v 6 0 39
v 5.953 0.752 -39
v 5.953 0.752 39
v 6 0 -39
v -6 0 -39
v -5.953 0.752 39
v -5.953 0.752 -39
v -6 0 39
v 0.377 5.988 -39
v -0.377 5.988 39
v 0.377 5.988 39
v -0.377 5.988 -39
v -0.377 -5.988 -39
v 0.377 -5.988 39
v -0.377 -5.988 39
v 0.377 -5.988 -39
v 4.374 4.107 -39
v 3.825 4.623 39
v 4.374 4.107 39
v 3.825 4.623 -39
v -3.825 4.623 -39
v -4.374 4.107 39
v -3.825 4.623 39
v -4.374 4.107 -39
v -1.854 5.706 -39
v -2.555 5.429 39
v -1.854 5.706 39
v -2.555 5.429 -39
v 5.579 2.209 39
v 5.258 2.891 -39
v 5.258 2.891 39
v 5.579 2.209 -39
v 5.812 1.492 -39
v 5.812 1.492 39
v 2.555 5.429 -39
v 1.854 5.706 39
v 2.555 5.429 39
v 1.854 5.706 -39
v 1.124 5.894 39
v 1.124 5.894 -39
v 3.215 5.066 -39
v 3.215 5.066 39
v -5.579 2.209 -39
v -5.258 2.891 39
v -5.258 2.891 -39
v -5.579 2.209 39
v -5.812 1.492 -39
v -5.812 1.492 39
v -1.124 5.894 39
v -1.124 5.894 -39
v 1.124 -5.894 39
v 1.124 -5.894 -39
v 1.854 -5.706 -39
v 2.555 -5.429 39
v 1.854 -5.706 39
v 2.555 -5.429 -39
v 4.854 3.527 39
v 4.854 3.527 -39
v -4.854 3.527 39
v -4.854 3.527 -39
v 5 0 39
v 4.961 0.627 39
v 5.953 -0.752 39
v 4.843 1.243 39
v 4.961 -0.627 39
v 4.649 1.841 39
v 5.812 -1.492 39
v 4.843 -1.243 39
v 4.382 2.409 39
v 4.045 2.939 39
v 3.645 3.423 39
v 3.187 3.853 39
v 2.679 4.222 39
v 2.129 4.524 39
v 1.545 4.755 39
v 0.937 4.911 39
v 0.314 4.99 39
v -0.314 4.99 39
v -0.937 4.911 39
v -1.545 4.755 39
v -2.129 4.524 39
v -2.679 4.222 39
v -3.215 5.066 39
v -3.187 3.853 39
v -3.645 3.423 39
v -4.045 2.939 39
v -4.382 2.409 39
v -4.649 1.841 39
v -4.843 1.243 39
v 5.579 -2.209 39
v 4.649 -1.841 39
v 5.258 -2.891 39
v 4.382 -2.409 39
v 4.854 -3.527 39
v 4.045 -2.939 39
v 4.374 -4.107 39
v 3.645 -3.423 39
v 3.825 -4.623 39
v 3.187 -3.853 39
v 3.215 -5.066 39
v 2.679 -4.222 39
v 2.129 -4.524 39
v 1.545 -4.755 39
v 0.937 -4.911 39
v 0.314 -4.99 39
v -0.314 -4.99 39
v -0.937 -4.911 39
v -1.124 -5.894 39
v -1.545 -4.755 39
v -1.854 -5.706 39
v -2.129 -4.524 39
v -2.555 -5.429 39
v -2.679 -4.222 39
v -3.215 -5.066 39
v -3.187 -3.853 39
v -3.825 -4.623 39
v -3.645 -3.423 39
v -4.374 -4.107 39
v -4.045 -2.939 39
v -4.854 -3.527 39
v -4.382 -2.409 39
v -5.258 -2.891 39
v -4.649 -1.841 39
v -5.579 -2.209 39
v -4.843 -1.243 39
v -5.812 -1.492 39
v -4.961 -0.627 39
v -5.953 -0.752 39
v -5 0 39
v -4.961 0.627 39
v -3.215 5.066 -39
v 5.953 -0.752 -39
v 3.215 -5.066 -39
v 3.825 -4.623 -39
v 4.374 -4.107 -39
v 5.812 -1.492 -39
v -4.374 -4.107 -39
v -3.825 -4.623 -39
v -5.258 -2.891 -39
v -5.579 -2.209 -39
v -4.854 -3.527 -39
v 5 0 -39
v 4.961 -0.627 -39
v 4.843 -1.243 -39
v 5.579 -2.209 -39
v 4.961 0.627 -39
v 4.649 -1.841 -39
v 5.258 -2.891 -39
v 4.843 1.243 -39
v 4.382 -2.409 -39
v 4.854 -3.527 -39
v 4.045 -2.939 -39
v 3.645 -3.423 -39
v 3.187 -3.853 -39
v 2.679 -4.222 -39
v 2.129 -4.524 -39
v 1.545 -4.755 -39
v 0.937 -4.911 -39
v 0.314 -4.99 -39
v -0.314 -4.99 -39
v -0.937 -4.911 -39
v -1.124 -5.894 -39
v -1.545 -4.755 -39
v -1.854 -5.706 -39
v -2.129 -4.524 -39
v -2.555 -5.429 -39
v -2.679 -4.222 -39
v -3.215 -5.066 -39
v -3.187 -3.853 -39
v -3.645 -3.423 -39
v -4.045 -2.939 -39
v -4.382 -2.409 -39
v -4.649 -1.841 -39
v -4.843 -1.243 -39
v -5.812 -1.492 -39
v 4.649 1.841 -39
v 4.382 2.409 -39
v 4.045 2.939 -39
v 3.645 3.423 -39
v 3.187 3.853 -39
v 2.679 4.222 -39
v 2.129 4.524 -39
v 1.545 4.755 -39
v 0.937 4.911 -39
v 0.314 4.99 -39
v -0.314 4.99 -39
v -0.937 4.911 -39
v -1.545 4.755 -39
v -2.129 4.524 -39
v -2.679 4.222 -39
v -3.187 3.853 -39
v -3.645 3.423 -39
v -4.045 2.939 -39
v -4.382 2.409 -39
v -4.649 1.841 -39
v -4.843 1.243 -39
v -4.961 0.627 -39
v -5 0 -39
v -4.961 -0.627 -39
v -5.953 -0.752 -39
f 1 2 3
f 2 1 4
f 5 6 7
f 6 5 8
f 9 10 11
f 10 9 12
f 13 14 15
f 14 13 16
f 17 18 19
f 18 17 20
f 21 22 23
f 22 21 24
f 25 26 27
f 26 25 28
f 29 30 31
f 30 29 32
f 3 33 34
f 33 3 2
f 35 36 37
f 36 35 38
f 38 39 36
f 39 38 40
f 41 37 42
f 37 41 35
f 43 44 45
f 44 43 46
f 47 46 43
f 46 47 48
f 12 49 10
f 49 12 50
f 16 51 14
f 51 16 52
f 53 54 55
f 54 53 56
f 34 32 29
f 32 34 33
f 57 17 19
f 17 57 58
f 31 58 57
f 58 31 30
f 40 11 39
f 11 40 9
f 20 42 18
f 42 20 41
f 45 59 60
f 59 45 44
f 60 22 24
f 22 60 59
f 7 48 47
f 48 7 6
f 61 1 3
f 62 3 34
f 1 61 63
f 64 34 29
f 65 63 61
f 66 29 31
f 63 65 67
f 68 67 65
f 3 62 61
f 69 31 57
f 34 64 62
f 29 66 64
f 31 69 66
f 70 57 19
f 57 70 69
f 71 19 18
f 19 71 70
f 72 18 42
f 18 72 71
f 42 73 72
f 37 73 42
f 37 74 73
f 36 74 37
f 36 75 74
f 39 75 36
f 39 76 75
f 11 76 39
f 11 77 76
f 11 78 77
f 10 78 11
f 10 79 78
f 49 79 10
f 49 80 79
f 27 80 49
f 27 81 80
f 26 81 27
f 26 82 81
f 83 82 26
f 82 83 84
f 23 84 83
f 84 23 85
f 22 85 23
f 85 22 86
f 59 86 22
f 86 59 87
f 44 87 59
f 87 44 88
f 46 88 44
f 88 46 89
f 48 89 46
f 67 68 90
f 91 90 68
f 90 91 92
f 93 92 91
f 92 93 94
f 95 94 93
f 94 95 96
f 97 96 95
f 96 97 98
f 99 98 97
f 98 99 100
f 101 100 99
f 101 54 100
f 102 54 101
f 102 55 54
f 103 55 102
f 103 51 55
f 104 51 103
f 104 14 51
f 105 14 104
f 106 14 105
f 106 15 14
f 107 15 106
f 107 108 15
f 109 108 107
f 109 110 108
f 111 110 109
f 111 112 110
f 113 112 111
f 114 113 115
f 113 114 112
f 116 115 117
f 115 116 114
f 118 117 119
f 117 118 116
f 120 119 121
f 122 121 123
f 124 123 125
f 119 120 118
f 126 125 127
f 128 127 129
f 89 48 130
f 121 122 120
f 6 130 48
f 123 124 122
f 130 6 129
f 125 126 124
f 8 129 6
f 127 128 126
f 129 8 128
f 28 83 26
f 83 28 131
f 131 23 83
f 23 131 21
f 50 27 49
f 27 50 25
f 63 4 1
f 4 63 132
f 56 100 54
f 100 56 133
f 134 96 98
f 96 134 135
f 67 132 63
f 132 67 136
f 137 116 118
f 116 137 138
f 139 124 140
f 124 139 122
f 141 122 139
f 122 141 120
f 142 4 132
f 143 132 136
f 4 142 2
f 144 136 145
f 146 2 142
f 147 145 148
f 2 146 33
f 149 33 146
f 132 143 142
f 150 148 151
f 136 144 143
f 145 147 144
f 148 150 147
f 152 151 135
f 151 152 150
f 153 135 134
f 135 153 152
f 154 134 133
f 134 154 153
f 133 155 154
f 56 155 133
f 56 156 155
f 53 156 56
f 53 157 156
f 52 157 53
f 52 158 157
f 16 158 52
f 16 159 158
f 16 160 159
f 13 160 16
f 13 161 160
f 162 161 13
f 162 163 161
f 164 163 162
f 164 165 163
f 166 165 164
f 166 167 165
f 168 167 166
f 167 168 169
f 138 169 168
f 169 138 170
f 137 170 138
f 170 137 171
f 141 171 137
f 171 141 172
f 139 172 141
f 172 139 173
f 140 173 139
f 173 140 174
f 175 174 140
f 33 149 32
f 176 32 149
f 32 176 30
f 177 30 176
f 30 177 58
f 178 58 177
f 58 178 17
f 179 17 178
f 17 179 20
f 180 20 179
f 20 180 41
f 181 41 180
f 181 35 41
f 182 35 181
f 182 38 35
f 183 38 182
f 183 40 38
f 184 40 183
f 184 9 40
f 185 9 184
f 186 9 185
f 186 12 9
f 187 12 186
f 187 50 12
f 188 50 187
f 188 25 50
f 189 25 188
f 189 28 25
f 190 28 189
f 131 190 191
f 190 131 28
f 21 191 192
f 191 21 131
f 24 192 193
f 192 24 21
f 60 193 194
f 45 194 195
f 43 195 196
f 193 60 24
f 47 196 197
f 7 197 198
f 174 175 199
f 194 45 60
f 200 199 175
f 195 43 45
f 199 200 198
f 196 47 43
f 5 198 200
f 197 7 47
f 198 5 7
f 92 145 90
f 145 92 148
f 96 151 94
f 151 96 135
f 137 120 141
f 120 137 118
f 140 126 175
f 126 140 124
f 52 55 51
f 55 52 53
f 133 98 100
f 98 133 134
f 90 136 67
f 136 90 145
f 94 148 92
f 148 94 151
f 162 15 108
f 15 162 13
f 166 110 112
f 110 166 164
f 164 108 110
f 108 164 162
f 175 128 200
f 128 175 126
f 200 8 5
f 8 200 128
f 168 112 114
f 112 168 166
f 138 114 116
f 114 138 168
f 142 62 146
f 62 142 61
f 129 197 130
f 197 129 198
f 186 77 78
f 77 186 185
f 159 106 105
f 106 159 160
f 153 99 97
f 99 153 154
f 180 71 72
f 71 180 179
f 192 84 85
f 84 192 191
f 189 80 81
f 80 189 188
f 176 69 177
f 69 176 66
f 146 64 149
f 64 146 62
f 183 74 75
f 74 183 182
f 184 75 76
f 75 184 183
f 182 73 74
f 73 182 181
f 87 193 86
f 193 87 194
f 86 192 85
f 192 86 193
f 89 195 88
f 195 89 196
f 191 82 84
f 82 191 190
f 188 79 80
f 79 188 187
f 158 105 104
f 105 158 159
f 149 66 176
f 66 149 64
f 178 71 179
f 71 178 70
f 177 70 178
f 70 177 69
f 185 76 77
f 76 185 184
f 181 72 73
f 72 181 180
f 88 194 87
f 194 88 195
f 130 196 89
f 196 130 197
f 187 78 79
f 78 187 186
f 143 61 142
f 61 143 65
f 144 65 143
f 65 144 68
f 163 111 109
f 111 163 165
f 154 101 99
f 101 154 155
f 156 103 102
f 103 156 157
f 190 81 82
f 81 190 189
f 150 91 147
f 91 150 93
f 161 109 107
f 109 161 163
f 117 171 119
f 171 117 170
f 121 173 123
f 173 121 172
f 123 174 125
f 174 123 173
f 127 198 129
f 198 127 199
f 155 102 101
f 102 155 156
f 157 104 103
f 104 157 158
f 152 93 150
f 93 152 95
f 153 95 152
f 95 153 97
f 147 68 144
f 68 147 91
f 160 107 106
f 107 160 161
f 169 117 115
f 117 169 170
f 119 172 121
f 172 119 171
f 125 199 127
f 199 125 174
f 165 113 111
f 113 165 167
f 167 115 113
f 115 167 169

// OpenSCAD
$fn = 50;


difference() {
	union() {
		translate(v = [0, 0, -39.0000000000]) {
			cylinder(h = 78, r = 6.0000000000);
		}
	}
	union() {
		translate(v = [0, 0, -100.0000000000]) {
			cylinder(h = 200, r = 5);
		}
	}
}
